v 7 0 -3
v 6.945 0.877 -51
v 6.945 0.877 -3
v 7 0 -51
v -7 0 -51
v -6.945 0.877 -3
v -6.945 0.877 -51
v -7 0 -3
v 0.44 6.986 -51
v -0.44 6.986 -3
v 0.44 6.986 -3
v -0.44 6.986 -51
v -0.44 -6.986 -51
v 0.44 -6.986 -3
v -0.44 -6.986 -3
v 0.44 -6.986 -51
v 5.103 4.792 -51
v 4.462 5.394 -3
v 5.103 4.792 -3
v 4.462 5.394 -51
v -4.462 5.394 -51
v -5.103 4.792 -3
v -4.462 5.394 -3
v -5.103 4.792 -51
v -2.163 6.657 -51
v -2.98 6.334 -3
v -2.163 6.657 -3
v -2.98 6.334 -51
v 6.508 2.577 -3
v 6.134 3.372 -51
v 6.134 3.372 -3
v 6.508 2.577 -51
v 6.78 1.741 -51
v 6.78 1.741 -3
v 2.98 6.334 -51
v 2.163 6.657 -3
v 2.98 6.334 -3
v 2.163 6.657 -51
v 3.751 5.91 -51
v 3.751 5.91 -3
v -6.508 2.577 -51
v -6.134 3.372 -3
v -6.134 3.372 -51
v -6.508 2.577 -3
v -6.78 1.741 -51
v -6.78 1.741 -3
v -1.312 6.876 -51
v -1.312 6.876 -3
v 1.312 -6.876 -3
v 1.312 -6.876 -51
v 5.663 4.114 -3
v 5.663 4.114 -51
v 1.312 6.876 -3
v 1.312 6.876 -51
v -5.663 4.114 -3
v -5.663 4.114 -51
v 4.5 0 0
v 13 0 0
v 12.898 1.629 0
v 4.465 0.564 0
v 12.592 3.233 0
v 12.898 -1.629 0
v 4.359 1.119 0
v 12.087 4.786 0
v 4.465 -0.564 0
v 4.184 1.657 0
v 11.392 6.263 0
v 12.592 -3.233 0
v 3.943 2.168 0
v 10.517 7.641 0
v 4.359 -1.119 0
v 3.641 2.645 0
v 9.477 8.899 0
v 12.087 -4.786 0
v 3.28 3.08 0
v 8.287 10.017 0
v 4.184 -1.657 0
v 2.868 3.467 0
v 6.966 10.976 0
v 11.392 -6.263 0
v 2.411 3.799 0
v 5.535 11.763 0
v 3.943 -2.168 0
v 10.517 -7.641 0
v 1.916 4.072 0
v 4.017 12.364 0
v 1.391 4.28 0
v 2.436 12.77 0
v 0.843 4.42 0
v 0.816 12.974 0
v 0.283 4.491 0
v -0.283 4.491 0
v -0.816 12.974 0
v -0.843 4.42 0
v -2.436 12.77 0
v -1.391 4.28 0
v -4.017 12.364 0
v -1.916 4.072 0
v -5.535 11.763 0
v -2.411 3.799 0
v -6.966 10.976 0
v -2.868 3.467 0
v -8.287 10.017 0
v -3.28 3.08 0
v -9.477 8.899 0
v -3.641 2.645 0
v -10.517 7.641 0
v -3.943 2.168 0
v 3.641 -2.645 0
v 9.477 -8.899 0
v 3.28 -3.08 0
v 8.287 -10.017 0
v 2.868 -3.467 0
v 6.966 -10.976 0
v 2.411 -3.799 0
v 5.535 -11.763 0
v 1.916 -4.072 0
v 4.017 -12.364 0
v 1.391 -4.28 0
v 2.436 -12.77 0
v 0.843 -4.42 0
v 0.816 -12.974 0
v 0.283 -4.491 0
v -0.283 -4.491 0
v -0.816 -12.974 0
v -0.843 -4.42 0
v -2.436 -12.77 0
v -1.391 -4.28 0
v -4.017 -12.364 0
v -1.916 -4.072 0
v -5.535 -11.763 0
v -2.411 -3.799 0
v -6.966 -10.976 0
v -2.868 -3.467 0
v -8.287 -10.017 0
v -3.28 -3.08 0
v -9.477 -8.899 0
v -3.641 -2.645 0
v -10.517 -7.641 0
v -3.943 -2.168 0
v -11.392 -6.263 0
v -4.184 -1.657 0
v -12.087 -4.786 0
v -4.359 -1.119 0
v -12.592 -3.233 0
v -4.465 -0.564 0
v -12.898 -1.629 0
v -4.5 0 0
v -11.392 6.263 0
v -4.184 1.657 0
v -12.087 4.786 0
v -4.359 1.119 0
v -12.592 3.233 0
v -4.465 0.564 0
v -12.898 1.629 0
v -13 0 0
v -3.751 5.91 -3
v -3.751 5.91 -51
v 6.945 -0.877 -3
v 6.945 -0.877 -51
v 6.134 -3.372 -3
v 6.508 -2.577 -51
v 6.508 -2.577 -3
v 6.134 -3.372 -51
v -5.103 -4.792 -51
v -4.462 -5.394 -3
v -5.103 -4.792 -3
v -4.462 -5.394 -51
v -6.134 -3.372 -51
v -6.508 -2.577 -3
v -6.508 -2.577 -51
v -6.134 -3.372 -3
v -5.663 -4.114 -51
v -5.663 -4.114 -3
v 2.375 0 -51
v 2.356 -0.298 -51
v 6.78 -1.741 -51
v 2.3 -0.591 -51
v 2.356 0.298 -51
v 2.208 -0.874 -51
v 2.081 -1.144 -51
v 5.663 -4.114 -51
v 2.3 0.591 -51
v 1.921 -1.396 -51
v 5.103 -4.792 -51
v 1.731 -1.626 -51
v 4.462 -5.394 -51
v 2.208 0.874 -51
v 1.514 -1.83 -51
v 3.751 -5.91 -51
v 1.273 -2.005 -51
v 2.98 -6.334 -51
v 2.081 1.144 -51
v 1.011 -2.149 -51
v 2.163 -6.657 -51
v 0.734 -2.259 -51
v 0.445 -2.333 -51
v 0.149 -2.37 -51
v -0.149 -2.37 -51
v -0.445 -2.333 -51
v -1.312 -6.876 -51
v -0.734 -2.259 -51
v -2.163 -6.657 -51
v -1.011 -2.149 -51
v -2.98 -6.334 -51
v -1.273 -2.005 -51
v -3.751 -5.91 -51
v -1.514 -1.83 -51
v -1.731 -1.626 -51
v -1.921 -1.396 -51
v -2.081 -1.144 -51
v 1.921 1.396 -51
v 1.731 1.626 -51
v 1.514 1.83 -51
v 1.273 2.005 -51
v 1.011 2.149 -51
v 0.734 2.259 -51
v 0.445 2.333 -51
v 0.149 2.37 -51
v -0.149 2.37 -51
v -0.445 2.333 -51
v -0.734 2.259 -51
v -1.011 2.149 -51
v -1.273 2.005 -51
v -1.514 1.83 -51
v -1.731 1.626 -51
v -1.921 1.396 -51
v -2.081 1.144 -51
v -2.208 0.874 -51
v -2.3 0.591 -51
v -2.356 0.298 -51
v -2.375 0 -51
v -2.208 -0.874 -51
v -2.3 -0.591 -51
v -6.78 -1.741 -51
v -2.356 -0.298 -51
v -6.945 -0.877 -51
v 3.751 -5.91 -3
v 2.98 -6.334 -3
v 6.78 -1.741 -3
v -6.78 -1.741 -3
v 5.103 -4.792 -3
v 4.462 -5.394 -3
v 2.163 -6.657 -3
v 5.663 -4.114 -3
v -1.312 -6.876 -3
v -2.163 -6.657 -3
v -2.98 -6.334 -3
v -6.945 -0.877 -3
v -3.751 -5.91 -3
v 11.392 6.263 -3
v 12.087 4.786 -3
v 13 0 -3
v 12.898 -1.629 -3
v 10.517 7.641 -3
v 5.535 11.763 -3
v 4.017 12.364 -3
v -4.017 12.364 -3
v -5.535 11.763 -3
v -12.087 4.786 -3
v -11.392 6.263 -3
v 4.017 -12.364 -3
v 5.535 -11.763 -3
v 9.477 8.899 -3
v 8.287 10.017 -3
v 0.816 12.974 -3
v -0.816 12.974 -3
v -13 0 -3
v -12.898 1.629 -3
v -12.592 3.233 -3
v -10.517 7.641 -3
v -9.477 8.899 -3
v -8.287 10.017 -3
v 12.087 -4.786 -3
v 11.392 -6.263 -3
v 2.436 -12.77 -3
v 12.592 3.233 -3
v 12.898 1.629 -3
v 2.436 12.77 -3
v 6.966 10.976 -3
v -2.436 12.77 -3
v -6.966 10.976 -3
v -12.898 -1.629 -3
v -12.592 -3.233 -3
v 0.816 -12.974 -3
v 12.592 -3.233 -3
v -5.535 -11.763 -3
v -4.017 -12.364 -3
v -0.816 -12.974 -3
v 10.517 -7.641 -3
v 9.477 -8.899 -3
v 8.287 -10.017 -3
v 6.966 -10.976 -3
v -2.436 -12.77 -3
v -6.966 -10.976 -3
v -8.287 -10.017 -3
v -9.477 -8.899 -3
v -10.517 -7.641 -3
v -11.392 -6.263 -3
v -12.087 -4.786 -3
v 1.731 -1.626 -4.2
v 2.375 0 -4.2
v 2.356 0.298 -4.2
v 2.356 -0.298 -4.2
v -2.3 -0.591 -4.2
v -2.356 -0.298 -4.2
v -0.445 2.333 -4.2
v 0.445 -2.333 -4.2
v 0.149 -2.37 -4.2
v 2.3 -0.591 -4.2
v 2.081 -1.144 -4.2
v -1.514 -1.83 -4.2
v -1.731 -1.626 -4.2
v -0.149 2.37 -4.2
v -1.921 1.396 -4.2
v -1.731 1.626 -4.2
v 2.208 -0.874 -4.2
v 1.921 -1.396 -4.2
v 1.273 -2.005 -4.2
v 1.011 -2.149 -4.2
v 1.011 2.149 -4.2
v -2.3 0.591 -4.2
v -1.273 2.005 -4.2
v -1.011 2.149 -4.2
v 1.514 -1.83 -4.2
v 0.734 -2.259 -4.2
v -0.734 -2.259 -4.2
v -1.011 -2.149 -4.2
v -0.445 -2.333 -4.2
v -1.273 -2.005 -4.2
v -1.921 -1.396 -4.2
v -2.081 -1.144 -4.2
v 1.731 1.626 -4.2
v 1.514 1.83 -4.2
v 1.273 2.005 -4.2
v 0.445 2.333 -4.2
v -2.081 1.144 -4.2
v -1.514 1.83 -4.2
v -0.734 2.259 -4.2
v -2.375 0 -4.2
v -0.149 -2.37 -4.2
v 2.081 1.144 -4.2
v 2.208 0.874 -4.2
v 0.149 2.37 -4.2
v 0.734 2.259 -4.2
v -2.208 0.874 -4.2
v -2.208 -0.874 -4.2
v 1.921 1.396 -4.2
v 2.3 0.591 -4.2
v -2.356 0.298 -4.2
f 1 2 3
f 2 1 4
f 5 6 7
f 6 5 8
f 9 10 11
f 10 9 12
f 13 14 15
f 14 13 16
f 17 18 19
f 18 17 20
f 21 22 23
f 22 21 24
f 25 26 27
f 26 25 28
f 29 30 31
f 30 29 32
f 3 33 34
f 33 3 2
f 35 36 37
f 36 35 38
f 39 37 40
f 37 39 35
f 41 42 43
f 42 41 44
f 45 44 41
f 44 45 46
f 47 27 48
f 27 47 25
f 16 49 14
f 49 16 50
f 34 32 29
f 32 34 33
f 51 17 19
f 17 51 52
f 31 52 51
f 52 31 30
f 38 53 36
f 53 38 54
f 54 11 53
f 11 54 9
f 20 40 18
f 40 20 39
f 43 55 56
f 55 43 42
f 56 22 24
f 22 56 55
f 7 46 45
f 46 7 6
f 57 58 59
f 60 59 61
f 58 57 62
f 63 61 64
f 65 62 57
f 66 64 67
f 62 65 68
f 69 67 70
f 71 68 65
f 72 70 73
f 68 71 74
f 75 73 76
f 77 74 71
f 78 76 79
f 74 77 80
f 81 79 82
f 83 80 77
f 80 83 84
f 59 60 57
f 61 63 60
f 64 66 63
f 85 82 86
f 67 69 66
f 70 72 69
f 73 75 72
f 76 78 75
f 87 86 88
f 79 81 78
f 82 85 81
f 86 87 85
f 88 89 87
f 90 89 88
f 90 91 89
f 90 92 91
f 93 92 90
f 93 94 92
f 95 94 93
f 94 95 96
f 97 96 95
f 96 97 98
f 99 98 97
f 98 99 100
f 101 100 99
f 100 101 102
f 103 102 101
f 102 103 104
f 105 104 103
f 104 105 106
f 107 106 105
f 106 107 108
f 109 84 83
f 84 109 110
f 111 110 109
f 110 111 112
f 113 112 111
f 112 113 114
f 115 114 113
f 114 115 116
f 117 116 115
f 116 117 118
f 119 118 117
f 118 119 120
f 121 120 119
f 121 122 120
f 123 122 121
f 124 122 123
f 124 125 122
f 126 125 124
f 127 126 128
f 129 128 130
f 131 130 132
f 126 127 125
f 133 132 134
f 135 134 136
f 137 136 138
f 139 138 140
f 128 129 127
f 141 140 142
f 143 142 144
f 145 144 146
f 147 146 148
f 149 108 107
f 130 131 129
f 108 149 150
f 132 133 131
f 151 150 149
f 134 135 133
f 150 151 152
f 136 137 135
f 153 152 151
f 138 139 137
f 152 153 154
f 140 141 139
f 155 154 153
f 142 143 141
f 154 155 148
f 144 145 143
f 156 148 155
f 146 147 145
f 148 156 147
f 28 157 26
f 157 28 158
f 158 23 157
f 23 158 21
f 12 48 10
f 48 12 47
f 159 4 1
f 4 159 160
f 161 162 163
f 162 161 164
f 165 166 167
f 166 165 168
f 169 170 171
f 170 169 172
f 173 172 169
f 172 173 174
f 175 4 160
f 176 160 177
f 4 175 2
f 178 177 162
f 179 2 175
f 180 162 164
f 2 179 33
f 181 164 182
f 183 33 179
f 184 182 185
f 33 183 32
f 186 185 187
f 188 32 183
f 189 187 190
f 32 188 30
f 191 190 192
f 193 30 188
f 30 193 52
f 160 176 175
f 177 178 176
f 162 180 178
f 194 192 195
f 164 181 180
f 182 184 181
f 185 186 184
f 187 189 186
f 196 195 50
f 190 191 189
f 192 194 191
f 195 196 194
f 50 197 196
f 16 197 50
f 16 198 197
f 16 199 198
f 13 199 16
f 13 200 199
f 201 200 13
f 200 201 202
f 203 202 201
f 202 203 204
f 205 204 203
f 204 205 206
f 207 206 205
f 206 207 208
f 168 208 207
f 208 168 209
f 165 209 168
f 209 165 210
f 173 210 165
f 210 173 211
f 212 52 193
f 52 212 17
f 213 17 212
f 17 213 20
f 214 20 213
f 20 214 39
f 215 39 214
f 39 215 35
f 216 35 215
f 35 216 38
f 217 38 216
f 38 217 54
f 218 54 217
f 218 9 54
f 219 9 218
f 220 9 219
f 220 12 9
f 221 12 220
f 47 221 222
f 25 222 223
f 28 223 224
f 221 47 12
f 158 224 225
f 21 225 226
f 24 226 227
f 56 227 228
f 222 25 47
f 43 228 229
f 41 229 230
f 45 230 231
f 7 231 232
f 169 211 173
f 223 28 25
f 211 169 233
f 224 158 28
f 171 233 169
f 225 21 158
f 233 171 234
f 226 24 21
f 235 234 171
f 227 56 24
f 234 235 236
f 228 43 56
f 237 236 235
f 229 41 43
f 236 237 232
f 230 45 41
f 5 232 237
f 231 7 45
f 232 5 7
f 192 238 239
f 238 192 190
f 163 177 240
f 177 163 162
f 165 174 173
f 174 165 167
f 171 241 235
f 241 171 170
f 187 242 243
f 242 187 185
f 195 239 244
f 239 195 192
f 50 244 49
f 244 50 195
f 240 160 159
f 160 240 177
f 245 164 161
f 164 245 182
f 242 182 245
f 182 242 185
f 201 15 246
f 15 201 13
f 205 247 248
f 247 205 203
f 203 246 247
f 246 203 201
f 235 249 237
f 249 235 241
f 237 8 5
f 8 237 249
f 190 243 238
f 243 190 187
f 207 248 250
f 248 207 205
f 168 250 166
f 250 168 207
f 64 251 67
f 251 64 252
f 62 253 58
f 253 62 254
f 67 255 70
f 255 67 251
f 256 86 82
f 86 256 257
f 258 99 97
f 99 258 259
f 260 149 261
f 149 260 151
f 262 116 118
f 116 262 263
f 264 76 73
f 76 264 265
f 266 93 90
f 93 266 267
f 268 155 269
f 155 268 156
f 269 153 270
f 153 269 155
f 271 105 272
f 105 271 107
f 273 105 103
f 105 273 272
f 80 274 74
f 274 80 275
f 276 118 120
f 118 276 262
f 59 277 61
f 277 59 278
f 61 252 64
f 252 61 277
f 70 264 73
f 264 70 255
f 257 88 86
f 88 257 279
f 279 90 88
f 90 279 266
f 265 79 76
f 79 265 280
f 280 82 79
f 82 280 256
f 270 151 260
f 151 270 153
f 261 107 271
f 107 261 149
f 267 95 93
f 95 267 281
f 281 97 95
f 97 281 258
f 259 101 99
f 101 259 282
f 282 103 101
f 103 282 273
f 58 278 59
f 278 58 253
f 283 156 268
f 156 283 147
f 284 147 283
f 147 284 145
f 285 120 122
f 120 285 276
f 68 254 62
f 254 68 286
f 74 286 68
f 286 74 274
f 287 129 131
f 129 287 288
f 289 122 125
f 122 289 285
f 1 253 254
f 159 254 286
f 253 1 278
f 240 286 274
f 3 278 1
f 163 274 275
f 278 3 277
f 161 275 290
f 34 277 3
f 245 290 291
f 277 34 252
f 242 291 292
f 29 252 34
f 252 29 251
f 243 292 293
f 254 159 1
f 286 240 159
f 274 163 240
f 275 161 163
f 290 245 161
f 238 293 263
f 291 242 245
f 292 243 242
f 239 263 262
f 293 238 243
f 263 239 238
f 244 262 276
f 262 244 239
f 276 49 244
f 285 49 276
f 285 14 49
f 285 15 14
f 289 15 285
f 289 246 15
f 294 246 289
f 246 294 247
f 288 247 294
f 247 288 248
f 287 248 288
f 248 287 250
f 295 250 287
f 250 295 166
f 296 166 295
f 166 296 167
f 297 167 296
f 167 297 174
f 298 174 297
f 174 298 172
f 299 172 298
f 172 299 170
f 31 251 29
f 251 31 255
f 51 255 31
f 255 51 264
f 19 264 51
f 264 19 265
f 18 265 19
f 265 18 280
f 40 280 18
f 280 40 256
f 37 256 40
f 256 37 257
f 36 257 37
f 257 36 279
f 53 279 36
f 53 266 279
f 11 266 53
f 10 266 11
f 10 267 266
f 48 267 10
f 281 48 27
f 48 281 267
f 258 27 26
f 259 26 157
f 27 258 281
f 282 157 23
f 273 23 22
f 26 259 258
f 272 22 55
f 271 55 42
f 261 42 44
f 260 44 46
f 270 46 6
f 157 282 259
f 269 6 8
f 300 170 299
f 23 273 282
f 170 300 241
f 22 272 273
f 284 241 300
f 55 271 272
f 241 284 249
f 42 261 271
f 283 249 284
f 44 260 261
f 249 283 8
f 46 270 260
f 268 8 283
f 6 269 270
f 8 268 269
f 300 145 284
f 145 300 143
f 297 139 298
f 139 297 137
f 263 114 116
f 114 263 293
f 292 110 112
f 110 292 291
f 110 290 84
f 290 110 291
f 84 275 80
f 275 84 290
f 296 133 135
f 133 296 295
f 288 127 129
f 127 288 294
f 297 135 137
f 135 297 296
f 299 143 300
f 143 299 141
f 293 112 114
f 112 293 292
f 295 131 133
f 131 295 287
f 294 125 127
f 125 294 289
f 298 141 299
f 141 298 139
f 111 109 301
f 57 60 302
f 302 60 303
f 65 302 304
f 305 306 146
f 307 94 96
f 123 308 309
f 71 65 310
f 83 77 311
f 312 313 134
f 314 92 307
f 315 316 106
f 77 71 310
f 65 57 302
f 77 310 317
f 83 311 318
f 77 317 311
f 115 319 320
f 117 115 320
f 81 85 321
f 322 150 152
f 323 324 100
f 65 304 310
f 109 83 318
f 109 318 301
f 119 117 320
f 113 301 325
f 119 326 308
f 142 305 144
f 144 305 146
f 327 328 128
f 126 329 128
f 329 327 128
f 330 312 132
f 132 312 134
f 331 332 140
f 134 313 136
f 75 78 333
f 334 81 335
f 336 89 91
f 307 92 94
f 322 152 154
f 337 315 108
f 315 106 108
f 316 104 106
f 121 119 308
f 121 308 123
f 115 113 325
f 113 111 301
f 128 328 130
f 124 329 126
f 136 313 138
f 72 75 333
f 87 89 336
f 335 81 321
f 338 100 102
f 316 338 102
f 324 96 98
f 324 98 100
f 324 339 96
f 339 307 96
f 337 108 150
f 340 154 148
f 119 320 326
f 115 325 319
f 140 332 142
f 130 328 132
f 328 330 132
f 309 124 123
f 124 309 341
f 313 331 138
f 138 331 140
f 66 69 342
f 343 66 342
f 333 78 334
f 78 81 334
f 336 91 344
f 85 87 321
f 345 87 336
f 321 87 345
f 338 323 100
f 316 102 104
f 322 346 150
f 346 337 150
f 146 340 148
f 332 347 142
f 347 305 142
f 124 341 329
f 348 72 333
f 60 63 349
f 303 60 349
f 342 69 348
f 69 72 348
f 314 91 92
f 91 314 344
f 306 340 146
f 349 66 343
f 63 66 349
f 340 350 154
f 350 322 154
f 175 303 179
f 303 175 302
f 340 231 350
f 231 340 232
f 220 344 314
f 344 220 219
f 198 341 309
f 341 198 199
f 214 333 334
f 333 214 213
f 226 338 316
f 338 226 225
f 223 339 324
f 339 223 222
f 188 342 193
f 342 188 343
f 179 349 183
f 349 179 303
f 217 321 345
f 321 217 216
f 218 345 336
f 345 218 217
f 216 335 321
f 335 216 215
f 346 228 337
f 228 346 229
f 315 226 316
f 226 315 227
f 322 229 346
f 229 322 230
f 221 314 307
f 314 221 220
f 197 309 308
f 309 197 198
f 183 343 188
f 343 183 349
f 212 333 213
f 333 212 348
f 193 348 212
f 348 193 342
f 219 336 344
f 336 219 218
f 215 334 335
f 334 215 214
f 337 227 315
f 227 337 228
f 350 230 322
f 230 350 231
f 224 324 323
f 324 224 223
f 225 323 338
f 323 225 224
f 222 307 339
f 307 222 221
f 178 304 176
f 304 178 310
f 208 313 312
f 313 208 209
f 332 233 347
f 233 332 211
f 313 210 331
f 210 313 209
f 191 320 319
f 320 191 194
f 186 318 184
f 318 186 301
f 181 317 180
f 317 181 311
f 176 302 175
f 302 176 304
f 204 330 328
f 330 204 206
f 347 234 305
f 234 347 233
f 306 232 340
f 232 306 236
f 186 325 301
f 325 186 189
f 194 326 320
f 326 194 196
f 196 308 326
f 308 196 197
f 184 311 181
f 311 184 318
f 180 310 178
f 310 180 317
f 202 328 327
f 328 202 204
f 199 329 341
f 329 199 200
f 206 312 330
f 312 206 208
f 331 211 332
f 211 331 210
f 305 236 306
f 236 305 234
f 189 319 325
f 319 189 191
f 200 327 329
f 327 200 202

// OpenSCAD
$fn = 50;


difference() {
	union() {
		translate(v = [0, 0, -51.0000000000]) {
			cylinder(h = 51, r = 7.0000000000);
		}
		translate(v = [0, 0, -3.0000000000]) {
			cylinder(h = 3, r = 13.0000000000);
		}
	}
	union() {
		translate(v = [0, 0, 0]) {
			rotate(a = [0, 0, 0]) {
				difference() {
					union() {
						#translate(v = [0, 0, -51.0000000000]) {
							cylinder(h = 51, r = 2.2500000000);
						}
						#translate(v = [0, 0, -4.2000000000]) {
							cylinder(h = 4.2000000000, r = 7.0000000000, r1 = 2.3750000000, r2 = 4.5000000000);
						}
						#translate(v = [0, 0, -51.0000000000]) {
							cylinder(h = 51, r = 2.3750000000);
						}
						#translate(v = [0, 0, -51.0000000000]) {
							cylinder(h = 51, r = 2.2500000000);
						}
					}
					union();
				}
			}
		}
	}
}
